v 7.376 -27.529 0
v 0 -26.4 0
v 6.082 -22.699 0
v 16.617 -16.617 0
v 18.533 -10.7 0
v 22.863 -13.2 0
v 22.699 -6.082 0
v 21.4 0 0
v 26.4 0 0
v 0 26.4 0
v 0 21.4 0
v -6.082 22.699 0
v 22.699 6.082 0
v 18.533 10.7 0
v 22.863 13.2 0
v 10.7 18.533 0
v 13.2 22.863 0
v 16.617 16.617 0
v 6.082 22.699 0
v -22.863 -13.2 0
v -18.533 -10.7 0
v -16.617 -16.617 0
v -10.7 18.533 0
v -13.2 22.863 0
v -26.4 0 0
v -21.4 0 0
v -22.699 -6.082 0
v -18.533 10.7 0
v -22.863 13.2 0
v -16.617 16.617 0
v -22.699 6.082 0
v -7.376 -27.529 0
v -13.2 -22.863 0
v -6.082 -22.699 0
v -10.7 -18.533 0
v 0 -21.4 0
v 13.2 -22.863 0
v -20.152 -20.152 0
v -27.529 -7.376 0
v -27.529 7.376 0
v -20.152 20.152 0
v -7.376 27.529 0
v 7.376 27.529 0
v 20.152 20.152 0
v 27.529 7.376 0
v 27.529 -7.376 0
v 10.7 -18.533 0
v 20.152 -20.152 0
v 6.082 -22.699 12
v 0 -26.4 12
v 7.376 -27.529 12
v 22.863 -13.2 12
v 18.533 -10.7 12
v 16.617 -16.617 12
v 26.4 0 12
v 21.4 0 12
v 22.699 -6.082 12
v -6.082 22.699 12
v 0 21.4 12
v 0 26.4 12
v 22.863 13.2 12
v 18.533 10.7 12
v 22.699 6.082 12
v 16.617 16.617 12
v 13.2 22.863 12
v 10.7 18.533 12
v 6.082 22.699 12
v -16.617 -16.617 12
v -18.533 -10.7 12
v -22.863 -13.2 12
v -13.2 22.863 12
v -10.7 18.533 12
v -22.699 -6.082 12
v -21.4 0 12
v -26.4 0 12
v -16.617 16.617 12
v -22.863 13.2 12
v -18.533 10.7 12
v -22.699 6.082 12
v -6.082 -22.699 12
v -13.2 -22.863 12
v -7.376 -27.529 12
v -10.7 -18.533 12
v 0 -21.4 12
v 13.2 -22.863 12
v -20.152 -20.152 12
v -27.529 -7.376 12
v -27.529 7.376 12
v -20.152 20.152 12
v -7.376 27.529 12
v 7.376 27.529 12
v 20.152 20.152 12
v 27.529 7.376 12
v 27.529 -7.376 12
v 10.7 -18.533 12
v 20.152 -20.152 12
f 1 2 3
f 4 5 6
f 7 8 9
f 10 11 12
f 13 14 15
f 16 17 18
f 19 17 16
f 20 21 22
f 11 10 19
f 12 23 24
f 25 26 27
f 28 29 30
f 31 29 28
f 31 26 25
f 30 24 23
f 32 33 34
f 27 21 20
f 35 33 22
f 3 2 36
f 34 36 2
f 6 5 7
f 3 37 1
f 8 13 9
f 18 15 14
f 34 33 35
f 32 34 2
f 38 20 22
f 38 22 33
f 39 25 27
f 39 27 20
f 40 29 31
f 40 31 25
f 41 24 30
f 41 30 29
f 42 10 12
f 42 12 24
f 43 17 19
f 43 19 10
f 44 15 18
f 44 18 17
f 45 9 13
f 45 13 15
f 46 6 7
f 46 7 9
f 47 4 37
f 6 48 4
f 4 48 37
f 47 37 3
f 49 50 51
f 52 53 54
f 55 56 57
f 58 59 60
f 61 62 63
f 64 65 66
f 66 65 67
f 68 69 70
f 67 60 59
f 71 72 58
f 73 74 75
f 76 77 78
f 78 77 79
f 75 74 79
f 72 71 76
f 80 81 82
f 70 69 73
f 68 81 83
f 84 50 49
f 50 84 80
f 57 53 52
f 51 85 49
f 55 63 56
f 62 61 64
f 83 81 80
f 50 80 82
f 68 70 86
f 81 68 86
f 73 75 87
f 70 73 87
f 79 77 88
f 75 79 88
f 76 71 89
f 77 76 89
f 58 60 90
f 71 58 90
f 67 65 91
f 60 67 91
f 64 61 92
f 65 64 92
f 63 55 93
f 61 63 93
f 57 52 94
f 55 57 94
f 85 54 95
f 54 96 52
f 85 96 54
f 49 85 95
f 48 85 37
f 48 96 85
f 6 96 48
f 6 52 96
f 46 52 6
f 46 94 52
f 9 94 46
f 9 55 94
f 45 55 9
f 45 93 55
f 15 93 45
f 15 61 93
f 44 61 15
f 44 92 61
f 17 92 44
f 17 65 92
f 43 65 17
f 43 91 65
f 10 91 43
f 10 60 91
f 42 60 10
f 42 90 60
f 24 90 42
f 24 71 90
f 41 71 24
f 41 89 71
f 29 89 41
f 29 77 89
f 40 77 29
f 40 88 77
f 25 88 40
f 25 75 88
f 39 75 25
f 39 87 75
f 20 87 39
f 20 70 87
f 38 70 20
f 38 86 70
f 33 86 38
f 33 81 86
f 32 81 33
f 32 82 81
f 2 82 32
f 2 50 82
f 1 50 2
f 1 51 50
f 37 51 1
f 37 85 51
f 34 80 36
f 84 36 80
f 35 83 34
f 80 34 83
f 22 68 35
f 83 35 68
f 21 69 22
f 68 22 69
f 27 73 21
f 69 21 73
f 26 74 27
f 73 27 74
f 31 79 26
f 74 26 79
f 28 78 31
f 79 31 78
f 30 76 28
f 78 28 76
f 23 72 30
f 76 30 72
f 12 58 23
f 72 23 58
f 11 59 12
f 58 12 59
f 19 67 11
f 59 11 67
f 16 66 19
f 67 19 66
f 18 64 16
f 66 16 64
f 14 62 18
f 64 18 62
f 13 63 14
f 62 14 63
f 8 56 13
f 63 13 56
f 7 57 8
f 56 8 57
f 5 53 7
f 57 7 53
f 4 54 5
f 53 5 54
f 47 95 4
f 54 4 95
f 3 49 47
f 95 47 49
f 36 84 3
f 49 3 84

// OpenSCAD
// Here are some global varialbes
$fn = 50;
rad = 57.29578;

// These below are globals.. used to call some functions...
MAX_DEGREE = 360;

N_TOOTH = 12; // Yeah its just 12 tooths..
WIDTH_TOOL = 5; // Using 5 millimeter for width of the 'mouth'
HEIGHT_TOOL = 7; // Measured about 8 or so.. again, want an easy fit
INNER_RADIUS = 26.4; // The measured inner radius is about 26.4 mm, using less for an easy fit
OUTER_RADIUS = 28.5;  // The measured part is about 29mm, using less to be sure it fits easily

RADIUS_HOLE = 22; // 20 mm measured. Extra for wiggle room

HEIGHT_ARM = 5; // Dunno, thickness of the arm...
LENGTH_ARM = 200 ; // Some indication for the 'arm' of the tool. Not sure if this works well


module honeywell_gear(n_tooth, inner_radius, outer_radius){
    // This creates a circle with 'Tooths'
    tau = 360/n_tooth;
    union() {
        polygon([for (rot = [0:tau:MAX_DEGREE]) [inner_radius * cos(rot), inner_radius * sin(rot)]]);
        for (rot = [0:tau:MAX_DEGREE]){
            x0 = inner_radius * cos(rot);
            y0 = inner_radius * sin(rot);

            x1 = outer_radius * cos(rot + tau/2);
            y1 = outer_radius * sin(rot + tau/2);

            x2 = inner_radius * cos(rot + tau);
            y2 = inner_radius * sin(rot + tau);
            echo([[x0,y0], [x1, y1], [x2, y2]]);
            polygon([[x0,y0], [x1, y1], [x2, y2]]);
        }
   }
}


module honeywell_gear_hollow(n_tooth, inner_radius, outer_radius, width_tool, height_tool){
    // Here we create the 'mouth' used to get into the tool
    // Adding height of the arm to it, so that netto we still have the desired height.
    linear_extrude(height = height_tool){
        difference(){
            honeywell_gear (n_tooth=n_tooth, inner_radius=inner_radius, outer_radius=outer_radius);
            honeywell_gear (n_tooth=n_tooth, inner_radius=inner_radius - width_tool, outer_radius=outer_radius - width_tool);
        };
    };
}


module tool_arm(){
    // Here we create the handle / arm to rotate it...
    // This is also where the trouble starts..
    difference(){
    translate([0, LENGTH_ARM / 2 - OUTER_RADIUS , 0]){
        cube([2 * OUTER_RADIUS, LENGTH_ARM, HEIGHT_ARM], center=true);
    };
        cylinder(h = 2 * HEIGHT_ARM, center=true, r=RADIUS_HOLE / 2);
}
}

// Creat tool without arm
honeywell_gear_hollow(max_degree = MAX_DEGREE, n_tooth = N_TOOTH, inner_radius = INNER_RADIUS,
outer_radius = OUTER_RADIUS, width_tool = WIDTH_TOOL, height_tool = HEIGHT_TOOL + HEIGHT_ARM);


// Create tool with arm
//union() {
  //  tool_arm();
   // honeywell_gear_hollow(max_degree = MAX_DEGREE, n_tooth = N_TOOTH, inner_radius = INNER_RADIUS,
    //outer_radius = OUTER_RADIUS, width_tool = WIDTH_TOOL, height_tool = HEIGHT_TOOL + HEIGHT_ARM);
//}
